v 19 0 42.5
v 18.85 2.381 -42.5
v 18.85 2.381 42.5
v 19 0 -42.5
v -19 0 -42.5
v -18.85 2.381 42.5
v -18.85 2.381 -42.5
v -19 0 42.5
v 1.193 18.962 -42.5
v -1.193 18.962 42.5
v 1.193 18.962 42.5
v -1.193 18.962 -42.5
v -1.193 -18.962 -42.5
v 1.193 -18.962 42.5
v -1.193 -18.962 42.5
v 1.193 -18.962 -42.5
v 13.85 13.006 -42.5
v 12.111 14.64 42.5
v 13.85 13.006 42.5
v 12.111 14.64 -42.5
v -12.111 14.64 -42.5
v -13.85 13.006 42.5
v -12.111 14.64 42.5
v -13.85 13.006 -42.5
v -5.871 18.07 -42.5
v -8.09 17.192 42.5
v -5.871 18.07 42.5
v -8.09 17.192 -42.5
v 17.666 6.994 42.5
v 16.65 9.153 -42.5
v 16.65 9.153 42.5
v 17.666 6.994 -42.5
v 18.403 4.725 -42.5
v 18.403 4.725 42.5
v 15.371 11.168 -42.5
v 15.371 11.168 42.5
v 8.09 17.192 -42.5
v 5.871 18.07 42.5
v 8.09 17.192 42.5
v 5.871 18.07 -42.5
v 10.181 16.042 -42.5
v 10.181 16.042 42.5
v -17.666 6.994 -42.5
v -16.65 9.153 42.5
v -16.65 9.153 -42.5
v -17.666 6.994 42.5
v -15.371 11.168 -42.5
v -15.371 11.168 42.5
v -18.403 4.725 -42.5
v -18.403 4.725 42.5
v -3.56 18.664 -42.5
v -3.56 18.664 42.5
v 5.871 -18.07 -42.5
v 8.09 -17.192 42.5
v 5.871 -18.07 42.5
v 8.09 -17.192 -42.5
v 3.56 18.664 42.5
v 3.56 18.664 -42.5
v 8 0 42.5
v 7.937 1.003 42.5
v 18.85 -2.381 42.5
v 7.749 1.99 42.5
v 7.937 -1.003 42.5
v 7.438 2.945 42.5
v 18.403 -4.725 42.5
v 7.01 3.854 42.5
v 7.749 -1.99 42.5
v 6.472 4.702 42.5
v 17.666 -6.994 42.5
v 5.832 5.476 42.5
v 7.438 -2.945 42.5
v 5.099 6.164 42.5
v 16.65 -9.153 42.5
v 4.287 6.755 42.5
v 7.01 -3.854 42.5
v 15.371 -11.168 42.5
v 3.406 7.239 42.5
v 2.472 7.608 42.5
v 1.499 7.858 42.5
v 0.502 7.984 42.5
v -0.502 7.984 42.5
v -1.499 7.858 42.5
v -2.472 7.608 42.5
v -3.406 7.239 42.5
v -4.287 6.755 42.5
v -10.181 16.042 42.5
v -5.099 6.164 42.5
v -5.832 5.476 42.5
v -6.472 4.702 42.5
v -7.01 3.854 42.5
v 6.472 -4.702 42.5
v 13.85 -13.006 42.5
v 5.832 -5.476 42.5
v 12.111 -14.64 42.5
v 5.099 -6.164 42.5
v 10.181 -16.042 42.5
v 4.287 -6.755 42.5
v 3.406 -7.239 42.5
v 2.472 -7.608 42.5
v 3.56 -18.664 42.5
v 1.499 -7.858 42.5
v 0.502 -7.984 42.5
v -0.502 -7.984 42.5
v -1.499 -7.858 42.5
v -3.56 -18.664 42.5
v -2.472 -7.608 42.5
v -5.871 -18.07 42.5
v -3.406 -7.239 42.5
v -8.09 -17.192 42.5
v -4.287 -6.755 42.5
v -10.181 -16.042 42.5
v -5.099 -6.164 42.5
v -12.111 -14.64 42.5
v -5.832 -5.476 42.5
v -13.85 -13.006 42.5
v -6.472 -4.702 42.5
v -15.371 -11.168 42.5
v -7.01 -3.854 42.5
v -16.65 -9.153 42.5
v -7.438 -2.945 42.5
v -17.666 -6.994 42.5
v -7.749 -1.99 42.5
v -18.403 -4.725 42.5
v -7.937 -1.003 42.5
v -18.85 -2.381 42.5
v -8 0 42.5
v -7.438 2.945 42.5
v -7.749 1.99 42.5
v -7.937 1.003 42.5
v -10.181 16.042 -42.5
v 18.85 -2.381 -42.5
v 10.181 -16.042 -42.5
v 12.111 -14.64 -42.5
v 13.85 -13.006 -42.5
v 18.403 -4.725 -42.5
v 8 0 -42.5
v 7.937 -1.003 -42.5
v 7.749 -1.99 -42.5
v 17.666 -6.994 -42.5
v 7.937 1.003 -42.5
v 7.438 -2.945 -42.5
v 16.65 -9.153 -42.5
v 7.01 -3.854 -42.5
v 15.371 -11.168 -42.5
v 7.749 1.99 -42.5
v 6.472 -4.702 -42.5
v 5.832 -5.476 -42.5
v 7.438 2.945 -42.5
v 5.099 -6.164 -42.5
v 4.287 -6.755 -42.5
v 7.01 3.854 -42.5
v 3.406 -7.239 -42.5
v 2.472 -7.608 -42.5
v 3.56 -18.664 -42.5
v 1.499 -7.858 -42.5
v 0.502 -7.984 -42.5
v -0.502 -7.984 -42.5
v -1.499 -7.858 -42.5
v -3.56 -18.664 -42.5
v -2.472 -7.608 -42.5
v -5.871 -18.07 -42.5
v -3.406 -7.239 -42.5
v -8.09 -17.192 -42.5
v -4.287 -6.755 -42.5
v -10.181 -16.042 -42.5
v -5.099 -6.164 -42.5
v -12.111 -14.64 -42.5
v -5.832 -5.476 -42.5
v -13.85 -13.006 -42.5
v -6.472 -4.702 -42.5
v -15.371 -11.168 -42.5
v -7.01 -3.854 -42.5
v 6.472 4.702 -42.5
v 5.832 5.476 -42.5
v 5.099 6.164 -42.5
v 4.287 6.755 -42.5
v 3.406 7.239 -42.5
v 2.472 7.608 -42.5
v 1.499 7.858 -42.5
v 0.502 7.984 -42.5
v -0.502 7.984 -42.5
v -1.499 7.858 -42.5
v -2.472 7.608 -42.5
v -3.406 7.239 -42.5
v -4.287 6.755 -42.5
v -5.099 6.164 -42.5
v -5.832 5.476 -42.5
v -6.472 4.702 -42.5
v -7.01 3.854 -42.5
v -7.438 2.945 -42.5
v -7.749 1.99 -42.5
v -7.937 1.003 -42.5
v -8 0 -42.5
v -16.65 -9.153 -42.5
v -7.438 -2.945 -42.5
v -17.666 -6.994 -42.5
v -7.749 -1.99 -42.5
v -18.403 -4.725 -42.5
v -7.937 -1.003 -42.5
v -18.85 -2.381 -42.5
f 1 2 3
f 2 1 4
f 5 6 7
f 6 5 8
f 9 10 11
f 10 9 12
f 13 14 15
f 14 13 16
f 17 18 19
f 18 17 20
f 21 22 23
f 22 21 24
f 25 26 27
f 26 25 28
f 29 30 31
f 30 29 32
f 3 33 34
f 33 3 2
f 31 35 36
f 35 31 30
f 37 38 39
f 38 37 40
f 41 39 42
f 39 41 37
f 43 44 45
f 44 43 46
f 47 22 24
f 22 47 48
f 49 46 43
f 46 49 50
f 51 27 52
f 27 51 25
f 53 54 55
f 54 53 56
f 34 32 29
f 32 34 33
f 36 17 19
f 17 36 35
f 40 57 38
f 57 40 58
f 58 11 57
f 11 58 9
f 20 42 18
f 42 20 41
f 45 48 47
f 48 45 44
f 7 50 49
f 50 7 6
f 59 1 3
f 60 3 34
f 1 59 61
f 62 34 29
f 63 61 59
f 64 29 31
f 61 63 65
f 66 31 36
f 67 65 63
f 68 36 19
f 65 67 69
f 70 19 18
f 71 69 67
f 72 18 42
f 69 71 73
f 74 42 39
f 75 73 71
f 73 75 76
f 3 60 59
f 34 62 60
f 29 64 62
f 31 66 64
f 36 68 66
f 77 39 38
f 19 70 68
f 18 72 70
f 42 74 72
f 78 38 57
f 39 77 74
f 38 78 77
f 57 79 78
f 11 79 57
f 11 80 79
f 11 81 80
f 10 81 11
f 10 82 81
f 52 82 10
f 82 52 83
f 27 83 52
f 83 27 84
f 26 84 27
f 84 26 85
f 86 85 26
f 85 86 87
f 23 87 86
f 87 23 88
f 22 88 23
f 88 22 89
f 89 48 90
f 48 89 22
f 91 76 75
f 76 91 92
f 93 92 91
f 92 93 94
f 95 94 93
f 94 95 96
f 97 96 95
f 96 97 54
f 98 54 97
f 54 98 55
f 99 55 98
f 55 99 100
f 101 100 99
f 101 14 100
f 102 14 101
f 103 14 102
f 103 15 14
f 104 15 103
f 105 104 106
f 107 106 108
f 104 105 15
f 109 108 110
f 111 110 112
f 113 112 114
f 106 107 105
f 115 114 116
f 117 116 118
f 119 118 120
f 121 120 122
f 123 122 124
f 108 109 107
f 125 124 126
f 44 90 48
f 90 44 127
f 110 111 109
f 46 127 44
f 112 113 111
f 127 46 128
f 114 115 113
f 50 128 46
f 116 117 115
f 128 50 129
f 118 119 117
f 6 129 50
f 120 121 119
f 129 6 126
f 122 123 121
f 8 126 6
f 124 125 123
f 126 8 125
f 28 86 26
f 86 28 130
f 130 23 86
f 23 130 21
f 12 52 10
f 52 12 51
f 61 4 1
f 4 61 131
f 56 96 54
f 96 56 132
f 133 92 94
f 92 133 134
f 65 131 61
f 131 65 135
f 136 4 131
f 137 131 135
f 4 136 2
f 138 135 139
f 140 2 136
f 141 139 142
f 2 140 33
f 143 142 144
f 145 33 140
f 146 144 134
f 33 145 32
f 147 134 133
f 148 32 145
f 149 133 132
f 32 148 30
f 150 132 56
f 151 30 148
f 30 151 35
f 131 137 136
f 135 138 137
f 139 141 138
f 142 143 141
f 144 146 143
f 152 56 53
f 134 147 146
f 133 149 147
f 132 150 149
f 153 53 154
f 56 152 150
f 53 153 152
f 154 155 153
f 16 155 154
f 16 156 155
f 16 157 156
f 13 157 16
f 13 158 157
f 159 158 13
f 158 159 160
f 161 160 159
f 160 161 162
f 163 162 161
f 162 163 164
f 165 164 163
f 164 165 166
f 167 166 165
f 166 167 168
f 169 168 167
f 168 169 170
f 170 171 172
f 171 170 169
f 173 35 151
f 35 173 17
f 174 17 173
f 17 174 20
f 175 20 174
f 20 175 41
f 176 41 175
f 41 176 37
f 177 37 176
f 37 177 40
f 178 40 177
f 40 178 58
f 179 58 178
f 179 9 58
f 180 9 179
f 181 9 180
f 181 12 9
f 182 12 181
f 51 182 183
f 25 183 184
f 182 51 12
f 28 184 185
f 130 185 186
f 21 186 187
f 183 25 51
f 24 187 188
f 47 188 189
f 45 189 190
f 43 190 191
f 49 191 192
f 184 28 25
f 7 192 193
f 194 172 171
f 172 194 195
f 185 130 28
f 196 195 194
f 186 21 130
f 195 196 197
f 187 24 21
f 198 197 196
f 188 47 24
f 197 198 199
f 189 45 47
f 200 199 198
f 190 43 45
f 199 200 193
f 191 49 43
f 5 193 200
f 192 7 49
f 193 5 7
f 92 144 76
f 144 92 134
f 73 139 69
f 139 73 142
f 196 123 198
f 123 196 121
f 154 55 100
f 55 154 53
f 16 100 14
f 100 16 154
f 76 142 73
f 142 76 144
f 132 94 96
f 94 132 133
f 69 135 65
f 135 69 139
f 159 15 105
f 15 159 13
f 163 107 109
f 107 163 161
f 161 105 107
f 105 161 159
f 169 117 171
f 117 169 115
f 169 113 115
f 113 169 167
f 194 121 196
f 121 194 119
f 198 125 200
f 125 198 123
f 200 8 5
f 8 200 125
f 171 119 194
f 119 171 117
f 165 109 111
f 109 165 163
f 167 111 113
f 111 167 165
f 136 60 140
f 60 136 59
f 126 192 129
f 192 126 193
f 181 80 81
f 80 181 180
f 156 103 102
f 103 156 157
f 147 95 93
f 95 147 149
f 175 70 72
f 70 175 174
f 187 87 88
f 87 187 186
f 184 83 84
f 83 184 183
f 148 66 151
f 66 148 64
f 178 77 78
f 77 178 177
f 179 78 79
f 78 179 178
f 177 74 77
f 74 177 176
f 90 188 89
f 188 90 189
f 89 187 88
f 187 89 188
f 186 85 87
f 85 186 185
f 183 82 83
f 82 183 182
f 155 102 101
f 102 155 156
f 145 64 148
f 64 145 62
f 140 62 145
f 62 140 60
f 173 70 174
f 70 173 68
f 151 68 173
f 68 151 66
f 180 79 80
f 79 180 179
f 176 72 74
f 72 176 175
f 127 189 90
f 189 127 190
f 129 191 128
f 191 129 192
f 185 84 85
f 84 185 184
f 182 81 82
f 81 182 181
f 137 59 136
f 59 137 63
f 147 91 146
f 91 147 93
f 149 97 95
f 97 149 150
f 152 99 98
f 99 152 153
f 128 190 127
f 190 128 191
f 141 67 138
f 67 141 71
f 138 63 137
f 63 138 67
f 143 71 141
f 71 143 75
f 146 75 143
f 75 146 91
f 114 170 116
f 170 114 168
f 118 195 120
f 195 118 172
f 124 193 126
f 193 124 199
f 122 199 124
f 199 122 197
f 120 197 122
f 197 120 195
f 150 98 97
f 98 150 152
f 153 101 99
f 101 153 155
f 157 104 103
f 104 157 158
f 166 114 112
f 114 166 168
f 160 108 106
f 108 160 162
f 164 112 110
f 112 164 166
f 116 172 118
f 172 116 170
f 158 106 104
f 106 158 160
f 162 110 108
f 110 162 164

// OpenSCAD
$fn = 50;


difference() {
	union() {
		translate(v = [0, 0, -42.5000000000]) {
			cylinder(h = 85, r = 19.0000000000);
		}
	}
	union() {
		translate(v = [0, 0, -100.0000000000]) {
			cylinder(h = 200, r = 8);
		}
	}
}
